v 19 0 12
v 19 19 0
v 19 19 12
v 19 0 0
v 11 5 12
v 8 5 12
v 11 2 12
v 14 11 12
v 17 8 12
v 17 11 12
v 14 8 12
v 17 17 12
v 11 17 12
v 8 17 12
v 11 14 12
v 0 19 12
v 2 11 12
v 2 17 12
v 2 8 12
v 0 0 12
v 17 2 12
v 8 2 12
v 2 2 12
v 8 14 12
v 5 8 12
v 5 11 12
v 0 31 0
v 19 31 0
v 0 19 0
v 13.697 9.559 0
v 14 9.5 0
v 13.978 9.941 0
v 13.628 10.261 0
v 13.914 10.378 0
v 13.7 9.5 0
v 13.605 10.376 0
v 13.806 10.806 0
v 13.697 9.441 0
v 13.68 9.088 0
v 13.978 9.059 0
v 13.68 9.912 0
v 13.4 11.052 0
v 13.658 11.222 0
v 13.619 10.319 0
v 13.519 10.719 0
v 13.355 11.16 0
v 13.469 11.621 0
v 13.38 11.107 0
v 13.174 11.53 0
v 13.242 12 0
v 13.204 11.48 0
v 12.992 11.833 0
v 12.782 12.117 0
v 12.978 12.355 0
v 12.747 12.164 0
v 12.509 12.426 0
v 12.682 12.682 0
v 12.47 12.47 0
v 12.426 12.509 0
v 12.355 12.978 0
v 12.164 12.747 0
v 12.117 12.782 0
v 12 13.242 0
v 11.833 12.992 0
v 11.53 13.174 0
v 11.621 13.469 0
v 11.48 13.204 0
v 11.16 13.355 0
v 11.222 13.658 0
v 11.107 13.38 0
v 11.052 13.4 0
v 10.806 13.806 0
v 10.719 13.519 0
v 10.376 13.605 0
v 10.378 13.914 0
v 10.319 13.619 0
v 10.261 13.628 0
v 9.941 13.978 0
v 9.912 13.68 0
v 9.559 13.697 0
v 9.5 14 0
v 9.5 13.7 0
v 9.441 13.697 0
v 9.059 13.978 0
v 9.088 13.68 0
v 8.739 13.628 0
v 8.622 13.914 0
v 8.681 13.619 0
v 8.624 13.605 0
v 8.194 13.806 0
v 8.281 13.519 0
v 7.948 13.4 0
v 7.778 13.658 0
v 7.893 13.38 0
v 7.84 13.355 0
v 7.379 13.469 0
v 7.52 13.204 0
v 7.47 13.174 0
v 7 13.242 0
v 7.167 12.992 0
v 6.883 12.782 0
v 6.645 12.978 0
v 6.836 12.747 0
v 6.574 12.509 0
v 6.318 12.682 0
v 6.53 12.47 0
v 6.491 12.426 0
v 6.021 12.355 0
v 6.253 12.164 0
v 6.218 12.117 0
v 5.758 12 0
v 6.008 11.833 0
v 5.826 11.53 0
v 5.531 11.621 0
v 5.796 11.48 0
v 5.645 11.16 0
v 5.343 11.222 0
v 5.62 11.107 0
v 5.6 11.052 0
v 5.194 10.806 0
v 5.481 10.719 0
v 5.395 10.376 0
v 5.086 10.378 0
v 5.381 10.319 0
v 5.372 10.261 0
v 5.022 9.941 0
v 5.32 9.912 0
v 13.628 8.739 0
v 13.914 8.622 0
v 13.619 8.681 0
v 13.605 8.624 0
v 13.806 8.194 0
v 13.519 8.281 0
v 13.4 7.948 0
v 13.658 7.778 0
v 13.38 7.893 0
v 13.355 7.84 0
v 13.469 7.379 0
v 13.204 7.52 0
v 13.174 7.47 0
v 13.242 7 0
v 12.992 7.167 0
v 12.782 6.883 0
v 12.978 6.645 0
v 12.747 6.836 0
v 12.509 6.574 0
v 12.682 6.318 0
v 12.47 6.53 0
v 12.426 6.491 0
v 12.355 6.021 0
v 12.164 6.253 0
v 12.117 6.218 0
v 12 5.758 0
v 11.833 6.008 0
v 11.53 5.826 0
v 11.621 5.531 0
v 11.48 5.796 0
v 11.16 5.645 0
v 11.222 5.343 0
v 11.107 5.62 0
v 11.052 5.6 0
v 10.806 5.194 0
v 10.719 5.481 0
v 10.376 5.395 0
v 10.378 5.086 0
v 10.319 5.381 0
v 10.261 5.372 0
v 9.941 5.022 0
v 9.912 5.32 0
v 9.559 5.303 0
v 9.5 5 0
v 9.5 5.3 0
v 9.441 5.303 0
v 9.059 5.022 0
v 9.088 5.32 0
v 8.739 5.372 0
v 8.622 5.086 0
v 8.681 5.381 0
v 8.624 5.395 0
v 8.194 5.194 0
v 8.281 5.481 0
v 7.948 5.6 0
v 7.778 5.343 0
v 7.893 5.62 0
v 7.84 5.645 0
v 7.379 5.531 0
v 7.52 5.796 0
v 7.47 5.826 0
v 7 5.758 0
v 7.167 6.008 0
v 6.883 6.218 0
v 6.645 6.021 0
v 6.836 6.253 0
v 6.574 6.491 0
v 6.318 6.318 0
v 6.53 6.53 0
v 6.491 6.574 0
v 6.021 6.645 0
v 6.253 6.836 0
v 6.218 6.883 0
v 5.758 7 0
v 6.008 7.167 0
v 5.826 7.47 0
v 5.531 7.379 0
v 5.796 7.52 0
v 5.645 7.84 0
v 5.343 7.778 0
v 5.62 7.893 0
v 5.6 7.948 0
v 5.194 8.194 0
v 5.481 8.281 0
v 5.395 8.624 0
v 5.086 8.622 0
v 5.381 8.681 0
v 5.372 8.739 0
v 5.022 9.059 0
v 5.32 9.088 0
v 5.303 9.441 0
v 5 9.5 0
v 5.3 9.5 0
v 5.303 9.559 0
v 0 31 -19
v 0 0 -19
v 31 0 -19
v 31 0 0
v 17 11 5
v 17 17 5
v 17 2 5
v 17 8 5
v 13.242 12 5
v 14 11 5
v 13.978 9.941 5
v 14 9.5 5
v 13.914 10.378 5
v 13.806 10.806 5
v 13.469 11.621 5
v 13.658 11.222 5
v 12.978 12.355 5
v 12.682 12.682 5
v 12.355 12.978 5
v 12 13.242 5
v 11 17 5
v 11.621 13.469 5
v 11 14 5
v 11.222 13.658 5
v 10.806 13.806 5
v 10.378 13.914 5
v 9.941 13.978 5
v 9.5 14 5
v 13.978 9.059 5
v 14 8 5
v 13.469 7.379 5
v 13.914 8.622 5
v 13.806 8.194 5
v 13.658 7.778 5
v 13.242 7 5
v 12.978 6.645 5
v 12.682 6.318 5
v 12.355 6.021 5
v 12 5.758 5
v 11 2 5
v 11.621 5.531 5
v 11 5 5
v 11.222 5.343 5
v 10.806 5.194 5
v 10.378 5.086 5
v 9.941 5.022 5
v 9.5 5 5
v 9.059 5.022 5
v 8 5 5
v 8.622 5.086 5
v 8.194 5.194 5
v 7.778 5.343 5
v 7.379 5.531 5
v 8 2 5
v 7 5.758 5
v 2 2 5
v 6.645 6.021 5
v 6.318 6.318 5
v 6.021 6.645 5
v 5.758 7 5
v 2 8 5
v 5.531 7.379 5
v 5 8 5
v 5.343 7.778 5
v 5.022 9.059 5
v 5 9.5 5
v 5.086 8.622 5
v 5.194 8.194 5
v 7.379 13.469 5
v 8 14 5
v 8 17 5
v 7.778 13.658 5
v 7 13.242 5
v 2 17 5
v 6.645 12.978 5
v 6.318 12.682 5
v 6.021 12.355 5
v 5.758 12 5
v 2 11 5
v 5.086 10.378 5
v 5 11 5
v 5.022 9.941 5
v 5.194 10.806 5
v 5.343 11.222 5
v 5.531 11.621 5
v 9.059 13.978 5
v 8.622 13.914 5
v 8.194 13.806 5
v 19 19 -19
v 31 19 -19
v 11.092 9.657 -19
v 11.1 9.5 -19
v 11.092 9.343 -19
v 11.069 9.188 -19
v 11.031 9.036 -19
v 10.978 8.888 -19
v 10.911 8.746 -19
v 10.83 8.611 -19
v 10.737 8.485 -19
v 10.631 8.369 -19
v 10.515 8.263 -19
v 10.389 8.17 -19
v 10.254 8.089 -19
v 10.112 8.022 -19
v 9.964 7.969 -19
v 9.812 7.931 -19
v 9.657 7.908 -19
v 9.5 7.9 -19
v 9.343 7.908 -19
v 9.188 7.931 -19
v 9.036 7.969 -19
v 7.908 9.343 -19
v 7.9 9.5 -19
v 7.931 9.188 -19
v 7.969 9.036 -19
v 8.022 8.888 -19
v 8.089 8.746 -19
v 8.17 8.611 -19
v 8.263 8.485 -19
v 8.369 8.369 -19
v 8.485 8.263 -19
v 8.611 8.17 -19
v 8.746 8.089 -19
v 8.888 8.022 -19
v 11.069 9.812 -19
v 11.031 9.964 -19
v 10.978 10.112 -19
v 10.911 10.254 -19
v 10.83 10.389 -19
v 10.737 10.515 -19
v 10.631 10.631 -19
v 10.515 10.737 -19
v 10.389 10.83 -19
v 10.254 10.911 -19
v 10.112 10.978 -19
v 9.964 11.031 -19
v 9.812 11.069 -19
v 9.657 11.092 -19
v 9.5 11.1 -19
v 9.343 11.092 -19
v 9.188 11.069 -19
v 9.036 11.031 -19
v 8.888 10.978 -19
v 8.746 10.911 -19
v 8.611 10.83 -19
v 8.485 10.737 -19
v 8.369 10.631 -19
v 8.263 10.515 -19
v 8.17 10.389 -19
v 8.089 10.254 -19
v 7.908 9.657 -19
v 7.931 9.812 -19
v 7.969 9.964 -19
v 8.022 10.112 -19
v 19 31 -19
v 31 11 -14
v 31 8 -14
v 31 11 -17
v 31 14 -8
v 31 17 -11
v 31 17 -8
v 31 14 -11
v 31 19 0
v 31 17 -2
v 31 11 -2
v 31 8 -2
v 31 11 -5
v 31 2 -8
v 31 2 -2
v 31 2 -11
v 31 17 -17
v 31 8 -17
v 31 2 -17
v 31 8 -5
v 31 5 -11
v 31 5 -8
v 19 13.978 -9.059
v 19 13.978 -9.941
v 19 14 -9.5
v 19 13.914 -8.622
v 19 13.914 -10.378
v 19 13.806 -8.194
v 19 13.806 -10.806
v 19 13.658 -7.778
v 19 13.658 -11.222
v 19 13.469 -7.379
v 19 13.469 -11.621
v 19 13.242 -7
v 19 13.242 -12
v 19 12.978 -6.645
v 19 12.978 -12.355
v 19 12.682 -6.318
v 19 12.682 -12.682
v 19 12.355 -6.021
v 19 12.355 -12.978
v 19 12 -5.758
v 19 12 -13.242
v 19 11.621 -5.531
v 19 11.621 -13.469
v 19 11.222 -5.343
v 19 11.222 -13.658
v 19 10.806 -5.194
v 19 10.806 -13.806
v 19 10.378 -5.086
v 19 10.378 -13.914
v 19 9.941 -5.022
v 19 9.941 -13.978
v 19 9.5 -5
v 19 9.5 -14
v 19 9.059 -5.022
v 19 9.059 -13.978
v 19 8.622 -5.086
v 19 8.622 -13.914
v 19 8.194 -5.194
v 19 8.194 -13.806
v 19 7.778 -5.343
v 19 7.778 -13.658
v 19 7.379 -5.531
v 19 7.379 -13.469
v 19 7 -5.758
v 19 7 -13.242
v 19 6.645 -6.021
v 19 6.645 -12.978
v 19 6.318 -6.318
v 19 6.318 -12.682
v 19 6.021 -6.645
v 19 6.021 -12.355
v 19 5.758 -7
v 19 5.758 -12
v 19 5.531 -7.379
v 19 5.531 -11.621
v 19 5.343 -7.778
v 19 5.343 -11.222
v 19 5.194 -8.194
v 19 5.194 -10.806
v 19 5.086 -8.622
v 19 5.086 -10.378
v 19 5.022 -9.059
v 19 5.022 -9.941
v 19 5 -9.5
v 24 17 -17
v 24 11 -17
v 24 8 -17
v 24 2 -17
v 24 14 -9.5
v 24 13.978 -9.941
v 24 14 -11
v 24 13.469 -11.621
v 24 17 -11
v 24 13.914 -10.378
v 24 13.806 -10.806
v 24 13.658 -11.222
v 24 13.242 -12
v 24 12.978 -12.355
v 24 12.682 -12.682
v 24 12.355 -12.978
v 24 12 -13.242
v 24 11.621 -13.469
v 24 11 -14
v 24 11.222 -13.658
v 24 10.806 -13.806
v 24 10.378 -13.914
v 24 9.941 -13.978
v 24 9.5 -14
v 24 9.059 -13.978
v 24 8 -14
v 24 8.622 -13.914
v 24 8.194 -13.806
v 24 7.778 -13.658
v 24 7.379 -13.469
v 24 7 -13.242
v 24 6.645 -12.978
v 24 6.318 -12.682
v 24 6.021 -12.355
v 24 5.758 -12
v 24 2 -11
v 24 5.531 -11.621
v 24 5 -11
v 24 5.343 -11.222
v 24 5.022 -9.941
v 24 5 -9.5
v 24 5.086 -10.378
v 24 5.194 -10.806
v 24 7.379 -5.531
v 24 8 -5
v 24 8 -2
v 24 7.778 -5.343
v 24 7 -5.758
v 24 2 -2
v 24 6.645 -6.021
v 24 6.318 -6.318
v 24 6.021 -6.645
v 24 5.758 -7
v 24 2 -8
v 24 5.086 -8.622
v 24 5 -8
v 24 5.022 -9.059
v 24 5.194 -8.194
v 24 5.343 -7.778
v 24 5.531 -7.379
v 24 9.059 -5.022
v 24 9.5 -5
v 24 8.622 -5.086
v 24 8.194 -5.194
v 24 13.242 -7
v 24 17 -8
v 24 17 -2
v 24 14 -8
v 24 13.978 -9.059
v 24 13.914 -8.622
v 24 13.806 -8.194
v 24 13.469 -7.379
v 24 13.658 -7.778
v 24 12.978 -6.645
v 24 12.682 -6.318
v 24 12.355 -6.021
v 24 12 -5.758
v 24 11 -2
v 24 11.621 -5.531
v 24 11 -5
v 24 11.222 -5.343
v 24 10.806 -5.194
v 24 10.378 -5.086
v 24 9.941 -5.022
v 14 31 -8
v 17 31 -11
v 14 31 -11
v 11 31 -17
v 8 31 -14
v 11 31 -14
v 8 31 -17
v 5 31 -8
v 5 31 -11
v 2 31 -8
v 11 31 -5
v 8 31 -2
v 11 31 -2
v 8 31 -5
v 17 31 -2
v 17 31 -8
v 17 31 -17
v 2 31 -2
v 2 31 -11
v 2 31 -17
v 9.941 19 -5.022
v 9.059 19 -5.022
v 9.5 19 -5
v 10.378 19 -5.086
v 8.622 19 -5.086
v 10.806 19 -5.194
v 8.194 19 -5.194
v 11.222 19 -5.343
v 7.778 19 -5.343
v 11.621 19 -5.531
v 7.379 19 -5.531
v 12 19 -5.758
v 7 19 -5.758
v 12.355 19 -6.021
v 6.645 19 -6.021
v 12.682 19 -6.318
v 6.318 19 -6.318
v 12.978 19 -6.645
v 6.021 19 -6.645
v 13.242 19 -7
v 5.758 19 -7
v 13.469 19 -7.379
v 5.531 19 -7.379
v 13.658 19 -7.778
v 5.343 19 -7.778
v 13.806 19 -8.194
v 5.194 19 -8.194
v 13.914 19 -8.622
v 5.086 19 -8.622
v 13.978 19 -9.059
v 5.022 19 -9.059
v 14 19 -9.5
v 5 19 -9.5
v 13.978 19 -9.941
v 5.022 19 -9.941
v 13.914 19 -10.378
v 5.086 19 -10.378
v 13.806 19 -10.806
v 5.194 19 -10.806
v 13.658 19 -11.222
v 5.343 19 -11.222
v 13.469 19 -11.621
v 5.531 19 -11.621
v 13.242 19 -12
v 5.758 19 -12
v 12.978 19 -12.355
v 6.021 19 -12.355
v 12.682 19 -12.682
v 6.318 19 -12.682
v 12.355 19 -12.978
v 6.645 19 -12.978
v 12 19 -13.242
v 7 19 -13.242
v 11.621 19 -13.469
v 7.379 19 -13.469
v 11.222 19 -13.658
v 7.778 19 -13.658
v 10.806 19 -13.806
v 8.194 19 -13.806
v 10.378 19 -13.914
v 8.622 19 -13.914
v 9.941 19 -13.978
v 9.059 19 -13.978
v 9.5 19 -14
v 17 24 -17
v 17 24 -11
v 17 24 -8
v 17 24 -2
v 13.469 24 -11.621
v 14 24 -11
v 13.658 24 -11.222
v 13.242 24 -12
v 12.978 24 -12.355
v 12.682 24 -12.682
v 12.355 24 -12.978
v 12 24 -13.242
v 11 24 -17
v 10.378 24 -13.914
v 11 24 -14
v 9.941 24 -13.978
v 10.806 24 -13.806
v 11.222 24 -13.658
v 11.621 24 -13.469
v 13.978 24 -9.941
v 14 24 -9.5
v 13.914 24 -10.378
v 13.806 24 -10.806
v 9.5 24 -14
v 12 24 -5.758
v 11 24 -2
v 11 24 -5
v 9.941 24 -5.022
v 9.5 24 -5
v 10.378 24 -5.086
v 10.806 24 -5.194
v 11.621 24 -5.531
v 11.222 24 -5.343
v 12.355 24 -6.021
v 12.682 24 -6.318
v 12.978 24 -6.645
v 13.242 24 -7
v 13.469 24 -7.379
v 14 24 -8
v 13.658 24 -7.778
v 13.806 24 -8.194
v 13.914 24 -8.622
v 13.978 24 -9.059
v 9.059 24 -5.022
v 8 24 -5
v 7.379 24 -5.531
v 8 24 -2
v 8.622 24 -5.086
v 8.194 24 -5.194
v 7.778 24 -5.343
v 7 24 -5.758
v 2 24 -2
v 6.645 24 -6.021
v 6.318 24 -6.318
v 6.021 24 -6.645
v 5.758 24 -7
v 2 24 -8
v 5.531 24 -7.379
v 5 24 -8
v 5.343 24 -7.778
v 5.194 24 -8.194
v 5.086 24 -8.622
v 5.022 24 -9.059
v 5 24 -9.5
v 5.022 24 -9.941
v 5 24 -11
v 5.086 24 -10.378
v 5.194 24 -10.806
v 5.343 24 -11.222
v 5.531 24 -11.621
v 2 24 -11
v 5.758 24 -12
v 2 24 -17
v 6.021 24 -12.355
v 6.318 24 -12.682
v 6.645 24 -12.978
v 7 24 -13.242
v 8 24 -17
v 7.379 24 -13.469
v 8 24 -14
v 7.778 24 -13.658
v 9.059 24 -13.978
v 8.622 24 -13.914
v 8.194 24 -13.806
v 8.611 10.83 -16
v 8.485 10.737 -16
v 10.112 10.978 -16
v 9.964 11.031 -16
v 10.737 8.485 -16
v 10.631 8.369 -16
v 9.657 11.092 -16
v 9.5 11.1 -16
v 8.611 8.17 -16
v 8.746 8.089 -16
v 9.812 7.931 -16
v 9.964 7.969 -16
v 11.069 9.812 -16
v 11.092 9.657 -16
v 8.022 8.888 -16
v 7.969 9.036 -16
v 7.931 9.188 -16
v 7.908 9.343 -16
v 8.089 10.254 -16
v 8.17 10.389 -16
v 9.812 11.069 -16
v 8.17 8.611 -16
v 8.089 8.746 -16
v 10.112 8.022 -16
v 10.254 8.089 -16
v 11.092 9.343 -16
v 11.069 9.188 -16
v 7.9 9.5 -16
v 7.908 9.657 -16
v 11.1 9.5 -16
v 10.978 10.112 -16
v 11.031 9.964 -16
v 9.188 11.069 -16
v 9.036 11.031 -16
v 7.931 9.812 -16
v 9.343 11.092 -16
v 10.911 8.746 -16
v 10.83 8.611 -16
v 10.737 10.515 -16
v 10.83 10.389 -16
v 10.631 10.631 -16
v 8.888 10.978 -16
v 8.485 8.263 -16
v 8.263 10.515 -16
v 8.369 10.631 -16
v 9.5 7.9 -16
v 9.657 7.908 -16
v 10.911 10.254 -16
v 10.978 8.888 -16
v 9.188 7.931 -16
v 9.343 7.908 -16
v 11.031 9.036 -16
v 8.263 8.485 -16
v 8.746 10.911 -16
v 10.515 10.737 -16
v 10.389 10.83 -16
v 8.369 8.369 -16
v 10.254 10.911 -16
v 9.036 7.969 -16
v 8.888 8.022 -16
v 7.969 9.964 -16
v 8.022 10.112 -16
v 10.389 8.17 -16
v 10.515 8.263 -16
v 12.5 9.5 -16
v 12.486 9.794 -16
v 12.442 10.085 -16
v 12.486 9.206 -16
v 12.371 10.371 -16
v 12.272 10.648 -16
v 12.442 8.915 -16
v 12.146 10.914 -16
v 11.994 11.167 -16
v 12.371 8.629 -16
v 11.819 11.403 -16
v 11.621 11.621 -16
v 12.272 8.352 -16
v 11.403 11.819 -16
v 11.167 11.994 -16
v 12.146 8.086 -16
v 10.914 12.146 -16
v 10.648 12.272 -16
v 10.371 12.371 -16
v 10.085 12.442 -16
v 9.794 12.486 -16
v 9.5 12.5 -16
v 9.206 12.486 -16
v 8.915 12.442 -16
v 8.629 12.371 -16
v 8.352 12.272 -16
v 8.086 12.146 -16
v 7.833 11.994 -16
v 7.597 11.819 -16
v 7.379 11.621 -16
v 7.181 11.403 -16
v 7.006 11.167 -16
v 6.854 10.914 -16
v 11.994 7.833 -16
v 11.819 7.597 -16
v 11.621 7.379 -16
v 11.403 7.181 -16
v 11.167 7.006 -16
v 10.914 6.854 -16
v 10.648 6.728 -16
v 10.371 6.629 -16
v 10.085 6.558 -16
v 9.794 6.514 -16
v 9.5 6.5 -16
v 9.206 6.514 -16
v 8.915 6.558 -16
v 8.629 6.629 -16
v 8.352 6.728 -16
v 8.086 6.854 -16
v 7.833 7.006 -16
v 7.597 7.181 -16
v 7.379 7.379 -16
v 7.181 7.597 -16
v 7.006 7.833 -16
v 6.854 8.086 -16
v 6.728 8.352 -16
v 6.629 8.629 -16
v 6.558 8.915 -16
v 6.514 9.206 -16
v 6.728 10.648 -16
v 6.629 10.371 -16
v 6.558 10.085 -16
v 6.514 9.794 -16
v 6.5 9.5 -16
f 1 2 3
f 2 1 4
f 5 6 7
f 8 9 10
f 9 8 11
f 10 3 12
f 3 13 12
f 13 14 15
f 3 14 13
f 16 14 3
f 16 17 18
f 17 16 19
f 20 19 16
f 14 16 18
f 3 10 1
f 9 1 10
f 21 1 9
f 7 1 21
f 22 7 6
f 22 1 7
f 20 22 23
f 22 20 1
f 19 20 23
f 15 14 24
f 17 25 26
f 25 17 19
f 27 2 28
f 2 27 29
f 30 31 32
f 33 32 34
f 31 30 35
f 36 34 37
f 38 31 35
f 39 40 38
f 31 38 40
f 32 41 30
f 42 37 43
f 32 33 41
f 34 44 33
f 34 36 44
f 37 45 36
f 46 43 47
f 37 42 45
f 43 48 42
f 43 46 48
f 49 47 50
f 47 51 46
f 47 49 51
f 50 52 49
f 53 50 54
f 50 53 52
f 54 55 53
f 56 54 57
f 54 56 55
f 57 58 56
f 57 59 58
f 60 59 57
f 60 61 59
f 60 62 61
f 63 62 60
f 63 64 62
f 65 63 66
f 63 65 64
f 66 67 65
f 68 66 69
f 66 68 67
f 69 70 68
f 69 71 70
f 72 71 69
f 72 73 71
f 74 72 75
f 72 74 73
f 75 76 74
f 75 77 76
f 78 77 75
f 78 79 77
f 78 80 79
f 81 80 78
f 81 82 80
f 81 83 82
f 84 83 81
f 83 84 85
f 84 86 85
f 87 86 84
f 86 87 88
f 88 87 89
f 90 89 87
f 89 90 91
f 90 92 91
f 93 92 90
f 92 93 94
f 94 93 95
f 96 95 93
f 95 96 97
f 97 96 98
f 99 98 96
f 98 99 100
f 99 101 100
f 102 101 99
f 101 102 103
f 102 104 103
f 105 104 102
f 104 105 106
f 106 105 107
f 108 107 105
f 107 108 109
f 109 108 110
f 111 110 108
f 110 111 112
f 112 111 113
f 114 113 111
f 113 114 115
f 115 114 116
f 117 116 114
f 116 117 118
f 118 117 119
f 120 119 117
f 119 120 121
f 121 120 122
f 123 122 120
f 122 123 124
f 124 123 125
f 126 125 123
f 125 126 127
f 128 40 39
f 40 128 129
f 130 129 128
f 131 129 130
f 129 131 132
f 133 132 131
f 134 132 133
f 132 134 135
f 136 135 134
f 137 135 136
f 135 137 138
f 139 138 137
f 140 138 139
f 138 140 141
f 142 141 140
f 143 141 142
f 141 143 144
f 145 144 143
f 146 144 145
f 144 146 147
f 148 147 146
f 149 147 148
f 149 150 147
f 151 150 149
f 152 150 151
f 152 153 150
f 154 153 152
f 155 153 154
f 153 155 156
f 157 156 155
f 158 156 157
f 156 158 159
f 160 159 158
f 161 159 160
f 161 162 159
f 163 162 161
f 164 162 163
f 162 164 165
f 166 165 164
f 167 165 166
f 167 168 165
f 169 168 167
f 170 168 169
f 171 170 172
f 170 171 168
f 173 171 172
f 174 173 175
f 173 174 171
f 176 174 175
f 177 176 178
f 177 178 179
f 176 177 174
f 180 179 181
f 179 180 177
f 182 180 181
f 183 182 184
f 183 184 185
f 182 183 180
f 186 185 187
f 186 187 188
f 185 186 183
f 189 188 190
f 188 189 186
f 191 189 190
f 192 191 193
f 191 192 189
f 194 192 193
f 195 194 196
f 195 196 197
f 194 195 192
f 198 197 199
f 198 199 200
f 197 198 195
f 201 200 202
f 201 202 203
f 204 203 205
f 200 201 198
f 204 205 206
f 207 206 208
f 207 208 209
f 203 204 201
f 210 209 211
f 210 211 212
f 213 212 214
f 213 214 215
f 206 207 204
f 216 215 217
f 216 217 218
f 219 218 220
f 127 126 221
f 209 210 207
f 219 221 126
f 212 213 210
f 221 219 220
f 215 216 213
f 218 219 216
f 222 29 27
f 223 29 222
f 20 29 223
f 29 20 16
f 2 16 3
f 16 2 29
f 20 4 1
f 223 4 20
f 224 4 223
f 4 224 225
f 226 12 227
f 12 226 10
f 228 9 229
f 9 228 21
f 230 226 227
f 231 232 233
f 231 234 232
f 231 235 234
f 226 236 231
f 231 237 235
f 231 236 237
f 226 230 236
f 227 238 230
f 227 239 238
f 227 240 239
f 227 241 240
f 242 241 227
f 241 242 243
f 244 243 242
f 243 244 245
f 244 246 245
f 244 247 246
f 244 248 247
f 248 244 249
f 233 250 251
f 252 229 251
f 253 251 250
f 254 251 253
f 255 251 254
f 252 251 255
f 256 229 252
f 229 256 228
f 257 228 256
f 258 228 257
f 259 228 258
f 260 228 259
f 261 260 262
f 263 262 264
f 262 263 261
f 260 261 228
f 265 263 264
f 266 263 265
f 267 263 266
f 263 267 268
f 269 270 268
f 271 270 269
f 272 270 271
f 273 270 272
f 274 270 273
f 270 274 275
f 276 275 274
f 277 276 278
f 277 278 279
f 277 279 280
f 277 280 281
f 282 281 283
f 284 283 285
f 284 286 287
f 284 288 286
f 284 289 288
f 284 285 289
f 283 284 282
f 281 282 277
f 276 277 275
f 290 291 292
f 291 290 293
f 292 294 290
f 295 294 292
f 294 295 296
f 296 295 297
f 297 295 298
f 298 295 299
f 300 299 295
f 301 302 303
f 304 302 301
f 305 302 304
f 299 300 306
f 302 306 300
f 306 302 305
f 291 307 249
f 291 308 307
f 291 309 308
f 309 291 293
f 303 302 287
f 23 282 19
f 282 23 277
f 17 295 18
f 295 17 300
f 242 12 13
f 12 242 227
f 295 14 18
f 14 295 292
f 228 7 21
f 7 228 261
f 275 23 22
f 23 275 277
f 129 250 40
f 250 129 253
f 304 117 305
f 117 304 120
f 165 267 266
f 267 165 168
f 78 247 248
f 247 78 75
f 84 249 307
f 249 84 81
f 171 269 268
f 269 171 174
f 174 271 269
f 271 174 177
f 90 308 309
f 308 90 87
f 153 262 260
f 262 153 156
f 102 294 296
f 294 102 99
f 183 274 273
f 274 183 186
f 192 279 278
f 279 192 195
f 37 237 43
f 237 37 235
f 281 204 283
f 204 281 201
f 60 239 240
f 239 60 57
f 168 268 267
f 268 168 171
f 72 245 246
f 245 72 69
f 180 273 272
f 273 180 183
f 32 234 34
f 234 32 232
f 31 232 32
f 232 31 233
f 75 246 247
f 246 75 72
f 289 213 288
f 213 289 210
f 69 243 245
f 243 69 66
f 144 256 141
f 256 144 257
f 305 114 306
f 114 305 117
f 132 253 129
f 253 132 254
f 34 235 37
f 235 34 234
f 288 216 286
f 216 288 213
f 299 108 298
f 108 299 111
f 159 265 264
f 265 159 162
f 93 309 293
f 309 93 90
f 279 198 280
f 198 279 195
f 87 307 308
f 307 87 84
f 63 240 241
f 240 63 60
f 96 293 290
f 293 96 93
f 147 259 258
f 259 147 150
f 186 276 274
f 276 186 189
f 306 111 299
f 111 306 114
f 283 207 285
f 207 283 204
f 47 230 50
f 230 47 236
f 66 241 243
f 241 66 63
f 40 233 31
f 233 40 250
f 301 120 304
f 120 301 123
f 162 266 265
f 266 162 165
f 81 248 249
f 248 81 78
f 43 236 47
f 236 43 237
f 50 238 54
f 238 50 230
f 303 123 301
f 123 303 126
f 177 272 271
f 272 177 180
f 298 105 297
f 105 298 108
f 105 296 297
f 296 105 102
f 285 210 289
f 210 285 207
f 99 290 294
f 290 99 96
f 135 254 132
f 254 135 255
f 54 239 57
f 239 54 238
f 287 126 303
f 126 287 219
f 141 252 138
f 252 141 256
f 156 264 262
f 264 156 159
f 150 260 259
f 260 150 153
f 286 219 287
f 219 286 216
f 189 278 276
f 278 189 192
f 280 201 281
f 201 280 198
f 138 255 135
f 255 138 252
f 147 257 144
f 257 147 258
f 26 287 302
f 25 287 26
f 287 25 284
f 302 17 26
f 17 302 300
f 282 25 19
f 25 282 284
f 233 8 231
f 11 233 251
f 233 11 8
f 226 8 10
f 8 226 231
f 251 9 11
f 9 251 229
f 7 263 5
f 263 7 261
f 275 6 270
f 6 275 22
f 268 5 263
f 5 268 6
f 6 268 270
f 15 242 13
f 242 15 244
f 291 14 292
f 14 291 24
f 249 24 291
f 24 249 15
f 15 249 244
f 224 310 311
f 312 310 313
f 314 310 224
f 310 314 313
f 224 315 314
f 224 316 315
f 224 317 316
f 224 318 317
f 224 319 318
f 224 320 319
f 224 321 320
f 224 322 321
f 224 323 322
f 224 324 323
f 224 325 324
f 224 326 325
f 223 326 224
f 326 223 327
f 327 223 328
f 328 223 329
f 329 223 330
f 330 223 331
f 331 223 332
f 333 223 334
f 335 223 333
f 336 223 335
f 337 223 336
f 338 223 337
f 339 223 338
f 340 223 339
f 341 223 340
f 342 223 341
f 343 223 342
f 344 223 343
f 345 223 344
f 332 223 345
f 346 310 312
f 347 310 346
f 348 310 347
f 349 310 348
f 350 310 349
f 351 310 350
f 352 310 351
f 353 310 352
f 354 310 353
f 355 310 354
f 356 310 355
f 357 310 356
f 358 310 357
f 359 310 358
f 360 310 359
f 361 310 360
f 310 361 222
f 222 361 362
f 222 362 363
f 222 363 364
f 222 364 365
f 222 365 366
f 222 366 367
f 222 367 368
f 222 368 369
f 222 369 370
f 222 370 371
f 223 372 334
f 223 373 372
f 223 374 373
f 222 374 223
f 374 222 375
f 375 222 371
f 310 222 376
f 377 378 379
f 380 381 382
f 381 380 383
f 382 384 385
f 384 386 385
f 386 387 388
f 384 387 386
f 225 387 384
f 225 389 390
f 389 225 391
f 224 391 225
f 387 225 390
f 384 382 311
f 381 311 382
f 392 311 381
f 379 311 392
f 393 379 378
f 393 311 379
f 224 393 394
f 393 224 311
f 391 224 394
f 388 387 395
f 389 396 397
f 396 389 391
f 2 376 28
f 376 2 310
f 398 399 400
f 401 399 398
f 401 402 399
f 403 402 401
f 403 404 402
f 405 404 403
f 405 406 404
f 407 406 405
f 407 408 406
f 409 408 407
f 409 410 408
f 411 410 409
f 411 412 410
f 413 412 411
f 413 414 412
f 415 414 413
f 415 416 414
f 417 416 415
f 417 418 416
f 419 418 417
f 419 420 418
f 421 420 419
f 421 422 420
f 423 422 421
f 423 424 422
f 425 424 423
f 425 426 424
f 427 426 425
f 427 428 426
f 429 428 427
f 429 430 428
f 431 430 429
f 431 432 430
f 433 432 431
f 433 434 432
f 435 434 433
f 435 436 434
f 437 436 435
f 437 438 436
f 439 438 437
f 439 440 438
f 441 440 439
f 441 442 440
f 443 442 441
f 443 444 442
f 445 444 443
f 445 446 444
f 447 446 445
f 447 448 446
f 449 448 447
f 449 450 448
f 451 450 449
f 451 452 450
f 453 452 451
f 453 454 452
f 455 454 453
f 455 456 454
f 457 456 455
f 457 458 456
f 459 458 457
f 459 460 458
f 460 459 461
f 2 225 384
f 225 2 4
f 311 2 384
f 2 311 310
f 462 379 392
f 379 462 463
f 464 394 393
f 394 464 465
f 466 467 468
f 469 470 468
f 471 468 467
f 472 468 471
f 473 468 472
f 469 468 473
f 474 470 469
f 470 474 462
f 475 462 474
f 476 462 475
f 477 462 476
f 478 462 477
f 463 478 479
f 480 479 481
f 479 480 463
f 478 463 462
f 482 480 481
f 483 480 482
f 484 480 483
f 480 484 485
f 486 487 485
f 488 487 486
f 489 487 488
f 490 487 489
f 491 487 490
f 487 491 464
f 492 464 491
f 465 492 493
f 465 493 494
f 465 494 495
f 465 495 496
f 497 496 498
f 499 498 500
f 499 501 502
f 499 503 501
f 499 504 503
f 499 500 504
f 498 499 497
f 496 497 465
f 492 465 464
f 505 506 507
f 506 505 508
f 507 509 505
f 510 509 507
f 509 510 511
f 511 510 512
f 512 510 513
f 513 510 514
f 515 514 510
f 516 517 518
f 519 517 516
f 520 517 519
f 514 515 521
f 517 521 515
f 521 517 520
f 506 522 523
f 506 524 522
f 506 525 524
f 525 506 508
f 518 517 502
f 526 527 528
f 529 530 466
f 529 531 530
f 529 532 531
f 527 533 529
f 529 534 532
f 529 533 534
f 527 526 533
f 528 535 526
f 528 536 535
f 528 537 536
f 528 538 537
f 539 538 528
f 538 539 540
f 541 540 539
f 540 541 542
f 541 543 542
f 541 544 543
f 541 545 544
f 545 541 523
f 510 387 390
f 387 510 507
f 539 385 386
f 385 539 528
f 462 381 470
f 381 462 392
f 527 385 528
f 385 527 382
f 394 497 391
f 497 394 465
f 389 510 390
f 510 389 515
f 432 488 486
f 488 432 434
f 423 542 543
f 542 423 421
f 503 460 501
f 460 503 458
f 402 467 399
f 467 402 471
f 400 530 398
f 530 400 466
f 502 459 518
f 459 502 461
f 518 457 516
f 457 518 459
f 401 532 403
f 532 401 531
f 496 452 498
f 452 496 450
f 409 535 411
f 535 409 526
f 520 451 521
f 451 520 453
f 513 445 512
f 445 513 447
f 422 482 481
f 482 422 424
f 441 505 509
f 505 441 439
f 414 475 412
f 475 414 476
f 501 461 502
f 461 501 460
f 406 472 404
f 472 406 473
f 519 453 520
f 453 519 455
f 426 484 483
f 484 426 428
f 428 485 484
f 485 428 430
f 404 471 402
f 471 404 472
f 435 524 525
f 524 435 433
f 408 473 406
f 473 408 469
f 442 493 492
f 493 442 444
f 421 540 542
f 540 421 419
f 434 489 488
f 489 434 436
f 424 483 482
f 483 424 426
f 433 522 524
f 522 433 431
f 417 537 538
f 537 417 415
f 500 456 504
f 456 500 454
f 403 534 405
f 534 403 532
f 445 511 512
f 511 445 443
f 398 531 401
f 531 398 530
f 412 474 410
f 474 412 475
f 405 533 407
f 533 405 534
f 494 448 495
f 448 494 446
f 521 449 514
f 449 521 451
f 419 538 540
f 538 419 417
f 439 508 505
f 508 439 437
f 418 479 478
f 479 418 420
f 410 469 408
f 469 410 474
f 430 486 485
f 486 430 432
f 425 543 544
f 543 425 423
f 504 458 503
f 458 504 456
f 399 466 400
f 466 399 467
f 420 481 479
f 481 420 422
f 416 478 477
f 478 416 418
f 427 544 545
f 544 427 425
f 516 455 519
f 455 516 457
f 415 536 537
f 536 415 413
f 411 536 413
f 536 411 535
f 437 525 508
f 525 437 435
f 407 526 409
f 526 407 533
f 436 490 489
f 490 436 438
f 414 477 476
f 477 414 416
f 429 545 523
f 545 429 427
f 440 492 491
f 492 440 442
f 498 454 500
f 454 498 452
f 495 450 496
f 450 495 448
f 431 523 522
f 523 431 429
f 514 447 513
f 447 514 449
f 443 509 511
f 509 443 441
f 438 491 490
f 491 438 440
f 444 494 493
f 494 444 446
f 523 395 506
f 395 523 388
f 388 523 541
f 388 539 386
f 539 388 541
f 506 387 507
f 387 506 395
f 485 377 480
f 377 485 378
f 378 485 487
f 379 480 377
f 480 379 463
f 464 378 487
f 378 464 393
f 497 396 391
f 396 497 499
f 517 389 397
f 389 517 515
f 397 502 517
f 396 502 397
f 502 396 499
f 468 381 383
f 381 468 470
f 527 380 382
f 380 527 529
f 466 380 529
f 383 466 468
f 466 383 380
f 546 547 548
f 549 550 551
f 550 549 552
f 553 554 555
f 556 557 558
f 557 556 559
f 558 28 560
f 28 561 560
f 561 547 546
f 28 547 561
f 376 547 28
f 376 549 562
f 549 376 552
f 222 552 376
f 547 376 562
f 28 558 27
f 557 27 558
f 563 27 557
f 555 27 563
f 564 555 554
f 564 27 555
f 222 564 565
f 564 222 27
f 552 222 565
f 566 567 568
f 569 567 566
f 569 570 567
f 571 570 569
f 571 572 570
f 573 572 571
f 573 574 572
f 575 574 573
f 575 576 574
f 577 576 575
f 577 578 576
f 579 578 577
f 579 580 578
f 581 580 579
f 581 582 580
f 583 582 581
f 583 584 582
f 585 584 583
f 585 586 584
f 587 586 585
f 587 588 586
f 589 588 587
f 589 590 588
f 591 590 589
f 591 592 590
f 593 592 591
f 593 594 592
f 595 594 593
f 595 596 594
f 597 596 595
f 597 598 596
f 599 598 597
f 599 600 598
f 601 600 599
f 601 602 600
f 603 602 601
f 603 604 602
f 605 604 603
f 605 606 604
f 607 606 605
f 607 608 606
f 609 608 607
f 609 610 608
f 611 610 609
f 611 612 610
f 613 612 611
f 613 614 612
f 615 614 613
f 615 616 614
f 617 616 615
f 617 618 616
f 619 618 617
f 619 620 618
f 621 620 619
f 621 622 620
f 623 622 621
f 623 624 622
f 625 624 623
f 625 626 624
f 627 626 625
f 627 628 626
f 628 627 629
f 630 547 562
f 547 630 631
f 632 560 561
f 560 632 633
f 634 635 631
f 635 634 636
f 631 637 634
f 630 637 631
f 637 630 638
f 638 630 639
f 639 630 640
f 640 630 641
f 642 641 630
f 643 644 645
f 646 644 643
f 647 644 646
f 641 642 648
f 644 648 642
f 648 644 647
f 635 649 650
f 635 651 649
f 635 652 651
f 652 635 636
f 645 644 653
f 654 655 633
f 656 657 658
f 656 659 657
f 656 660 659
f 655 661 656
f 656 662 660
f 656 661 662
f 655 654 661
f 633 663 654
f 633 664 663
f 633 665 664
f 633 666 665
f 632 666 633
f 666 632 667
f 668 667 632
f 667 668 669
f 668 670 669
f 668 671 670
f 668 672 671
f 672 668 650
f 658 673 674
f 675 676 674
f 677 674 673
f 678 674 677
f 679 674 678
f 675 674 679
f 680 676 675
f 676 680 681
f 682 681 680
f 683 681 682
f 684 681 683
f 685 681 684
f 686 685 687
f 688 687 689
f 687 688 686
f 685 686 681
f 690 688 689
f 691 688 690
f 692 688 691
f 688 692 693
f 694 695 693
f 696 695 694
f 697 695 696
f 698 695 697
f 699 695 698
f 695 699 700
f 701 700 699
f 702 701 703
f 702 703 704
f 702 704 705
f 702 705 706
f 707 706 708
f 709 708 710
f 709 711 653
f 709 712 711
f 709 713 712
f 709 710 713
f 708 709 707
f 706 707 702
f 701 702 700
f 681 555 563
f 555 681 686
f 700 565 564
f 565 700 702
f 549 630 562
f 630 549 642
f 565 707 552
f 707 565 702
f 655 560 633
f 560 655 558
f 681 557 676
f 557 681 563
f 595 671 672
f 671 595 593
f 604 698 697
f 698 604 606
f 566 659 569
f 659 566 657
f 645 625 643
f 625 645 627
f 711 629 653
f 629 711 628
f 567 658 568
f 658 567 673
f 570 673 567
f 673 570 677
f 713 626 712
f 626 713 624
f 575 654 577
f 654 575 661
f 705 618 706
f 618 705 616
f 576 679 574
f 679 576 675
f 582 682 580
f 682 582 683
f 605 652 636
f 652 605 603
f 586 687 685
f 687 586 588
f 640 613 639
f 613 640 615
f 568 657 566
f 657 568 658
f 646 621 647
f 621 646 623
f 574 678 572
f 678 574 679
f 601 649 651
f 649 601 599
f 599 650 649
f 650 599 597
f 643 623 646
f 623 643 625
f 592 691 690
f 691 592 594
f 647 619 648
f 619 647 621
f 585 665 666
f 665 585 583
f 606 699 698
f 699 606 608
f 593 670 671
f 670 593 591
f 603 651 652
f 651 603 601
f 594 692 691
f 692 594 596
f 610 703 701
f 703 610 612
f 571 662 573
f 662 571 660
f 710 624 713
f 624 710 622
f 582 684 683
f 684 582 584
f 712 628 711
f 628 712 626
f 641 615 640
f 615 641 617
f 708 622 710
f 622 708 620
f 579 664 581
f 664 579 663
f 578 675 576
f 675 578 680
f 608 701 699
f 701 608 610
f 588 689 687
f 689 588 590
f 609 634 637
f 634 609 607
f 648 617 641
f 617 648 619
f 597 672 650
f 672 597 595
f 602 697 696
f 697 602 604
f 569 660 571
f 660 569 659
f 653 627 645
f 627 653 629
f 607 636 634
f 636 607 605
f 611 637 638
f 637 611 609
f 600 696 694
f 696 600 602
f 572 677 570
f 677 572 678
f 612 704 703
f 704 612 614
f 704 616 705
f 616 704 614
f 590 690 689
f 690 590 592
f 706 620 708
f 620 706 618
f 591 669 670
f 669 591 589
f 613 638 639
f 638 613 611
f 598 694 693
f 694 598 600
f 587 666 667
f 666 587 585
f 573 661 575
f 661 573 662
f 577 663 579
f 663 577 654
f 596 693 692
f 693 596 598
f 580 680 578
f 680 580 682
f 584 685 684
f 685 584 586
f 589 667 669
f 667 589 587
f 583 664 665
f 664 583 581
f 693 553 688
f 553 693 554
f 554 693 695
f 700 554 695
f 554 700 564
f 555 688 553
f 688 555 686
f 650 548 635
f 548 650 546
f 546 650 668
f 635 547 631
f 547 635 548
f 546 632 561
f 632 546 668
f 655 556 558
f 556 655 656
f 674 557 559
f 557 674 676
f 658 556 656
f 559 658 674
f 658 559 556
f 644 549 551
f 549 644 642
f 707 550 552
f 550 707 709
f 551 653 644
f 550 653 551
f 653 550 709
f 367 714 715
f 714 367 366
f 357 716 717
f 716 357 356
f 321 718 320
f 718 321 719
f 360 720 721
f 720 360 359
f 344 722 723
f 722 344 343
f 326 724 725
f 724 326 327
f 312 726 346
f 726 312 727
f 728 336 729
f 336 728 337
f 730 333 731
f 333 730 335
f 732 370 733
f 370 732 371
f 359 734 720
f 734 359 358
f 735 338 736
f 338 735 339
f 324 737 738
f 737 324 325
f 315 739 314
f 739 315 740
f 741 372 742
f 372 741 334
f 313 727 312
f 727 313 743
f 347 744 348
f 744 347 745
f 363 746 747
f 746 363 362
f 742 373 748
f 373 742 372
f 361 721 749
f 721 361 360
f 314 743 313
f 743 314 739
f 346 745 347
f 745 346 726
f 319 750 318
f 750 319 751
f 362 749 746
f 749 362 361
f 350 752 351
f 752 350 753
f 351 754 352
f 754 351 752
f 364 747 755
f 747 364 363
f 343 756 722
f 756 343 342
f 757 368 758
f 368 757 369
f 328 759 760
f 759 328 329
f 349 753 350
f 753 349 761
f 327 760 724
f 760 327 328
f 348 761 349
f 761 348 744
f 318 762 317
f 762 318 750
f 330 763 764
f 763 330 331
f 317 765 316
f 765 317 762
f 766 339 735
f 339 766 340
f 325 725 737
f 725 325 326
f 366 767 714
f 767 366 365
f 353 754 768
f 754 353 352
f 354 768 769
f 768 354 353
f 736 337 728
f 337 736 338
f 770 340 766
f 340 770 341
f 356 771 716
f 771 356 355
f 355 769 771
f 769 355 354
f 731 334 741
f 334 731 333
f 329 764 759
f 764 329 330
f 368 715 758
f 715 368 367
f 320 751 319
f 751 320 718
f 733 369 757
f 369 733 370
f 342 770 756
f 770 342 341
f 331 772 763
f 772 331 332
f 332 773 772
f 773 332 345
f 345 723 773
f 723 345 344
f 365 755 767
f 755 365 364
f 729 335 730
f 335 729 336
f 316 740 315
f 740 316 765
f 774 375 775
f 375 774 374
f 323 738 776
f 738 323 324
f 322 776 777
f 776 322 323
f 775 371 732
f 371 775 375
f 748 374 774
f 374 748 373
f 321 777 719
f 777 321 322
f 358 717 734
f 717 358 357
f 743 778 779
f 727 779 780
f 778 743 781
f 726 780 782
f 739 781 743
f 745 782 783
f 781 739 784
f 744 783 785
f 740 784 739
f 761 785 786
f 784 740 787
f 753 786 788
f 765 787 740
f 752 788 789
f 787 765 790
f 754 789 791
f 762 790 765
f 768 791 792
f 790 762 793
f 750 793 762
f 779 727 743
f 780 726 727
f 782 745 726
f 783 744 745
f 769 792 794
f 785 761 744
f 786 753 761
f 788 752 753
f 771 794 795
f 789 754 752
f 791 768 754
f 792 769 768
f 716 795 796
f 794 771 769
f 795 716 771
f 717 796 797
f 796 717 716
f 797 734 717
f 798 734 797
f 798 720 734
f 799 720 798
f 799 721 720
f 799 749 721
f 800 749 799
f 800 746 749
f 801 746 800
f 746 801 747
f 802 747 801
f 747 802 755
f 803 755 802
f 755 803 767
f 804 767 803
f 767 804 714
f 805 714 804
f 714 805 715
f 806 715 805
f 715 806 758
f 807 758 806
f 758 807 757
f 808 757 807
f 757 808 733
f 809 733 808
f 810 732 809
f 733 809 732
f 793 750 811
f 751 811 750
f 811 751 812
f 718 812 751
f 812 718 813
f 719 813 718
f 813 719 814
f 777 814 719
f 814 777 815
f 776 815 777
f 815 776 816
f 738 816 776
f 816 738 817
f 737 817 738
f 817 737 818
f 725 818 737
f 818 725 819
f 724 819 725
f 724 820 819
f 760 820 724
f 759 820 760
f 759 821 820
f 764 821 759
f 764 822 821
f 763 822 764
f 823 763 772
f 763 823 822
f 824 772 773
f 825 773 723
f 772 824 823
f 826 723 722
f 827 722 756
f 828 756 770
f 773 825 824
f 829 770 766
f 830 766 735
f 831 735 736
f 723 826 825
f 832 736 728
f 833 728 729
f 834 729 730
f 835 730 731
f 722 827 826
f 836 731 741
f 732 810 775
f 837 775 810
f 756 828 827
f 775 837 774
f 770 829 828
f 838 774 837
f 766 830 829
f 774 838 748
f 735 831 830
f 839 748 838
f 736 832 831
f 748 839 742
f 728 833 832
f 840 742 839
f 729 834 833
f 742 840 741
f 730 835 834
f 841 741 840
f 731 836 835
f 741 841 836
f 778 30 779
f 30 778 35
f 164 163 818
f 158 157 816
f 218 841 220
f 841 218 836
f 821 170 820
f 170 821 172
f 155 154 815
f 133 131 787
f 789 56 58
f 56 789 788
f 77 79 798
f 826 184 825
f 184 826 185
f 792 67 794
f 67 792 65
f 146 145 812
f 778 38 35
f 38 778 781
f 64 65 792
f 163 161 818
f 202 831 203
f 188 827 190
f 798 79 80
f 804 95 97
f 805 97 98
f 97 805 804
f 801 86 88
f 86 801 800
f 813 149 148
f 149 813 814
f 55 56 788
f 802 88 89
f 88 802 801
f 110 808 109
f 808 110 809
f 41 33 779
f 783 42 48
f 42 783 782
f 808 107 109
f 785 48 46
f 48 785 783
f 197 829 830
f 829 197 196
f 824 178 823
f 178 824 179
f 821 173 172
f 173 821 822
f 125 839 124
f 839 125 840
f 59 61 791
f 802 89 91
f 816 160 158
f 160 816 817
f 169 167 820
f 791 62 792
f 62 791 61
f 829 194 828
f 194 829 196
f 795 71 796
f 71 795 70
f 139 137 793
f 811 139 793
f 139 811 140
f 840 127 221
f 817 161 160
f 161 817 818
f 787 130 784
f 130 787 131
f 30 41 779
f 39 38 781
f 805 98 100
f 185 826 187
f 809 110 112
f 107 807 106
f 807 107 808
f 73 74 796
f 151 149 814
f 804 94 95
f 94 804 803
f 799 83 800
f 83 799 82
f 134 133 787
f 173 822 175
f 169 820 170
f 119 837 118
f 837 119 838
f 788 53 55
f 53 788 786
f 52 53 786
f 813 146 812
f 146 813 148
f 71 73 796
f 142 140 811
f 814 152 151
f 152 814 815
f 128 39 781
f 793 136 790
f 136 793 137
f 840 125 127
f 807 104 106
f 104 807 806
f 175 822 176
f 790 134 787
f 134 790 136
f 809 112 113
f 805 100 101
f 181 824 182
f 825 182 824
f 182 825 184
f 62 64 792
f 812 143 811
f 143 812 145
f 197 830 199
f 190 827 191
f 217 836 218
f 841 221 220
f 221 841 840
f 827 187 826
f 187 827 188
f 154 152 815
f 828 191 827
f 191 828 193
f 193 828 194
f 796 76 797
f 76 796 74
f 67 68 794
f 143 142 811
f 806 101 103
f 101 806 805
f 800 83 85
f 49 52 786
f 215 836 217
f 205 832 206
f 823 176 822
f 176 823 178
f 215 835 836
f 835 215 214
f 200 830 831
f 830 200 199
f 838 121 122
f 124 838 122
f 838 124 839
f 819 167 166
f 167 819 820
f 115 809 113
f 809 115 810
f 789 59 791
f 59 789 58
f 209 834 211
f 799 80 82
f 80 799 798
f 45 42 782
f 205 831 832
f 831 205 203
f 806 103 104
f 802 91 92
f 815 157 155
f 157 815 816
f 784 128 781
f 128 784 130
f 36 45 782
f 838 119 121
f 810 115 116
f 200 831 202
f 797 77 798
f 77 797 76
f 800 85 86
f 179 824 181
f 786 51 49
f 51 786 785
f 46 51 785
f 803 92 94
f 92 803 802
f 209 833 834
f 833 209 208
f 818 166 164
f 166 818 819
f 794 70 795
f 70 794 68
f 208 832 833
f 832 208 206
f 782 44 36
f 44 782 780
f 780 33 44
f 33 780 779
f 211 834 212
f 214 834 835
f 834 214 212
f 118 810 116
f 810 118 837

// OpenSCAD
$fn = 64;


size = 30;

h = 20;

r = 5;

holeD = 6.8;
holeR = holeD / 2.0 ;


/*
module smoothSquare(size,r,h){
    
    difference(){
        translate([0,0,0]) cube([size,size,h]);
    
        translate([0,0,0]) cube([r,r,h]);
        translate([size - r,0,0]) cube([r,r,h]);
        translate([0,size - r,0]) cube([r,r,h]);
        translate([size - r,size - r,0]) cube([r,r,h]);
        
    }
    
    translate([r,r,0]) cylinder(h,r,r);
    translate([size - r,r,0]) cylinder(h,r,r);
    translate([r, size - r,0]) cylinder(h,r,r);
    translate([size - r ,size - r ,0]) cylinder(h,r,r);
   
      
}




module cutOut(x,y){
    
 difference(){
    translate([x  , y + 2,0]) cube([5,6,h]);

          
   translate([x + 2 ,y + 8 ,0]) rotate([0,0,-35]){
         cube([6,4,h]);  
        }
        
    translate([x + 4,y - 2 ,0]) rotate([0,0,35]){
            cube([6,4,h]);  
          }      
        
        
    }

    
}

module crossSection(){
    
    difference(){

    smoothSquare(size,r,h);
    

    
    cutOut(0,10);
    
    rotate([0,0,-90]){
        cutOut(-30,10);
    }
    
    rotate([0,0,180]){
        cutOut(-30,-20);
    }
   
    
    rotate([0,0,90]){
        cutOut(0,-20);
    }
}
    
}
*/
/* START OF DESIGN */
/*
difference(){
    
    translate([-4,-4,-4]) cube( [size + 8  , size + 8 , h + 4 ] );

    crossSection();
    
    translate( [ size / 2 ,size / 2 , - 4 ] ) #cylinder( 4 , 3 , 3 ); 
    
    translate( [ size / 2 ,size / 2 , - 1 ] ) cylinder( 4 , 5.75 , 5.75 ); 
    
}*/

width = 15.0;
wall = ( 19 -  width ) * 0.5;


module brick( x  , y , z ){
    
    
translate( [ x , y , z ] ){
    
    difference(){

        translate([0,0,0]) cube ([19,19,12]);
    
        translate([wall,wall,5]) cube ([width,width,9]);
    
        //translate( [ 9.5 , 9.5 ,0  ] ) #cylinder( 3 , 1.6 , 1.7 ); 
        //translate( [ 9.5 , 9.5 ,3  ] ) #cylinder( 2 , 3.0 , 3.0 ); 
        
         translate( [ 9.5 , 9.5 ,0  ] ) cylinder( 5 , 4.5 , 4.5 ); 
    
    
    }


    translate([0,8,0]) cube ([5,3,12]);
    translate([14,8,0]) cube ([5,3,12]);
    translate([8,0,0]) cube ([3,5,12]);
    translate([8,14,0]) cube ([3,5,12]);

    
    
    }
    
}



brick(0,0,0);

rotate( [ 0 , 90 , 0 ] ){
    brick(0,0,19);
}


rotate( [ 270 , 0 , 0 ] ){
    brick(0,0,19);
}



difference(){
 
    translate([0,0,-19]) cube ([19,19,19]);

    translate( [ 9.5 , 9.5 , -19  ] ) cylinder( 3 , 1.6 , 1.6 ); 
    translate( [ 9.5 , 9.5 ,-16 ] ) cylinder( 20 , 3.0 , 4.5 ); 
   /*
    rotate( [ 0 , 90 , 0 ] ){
        translate( [ 9.5 , 9.5 , 0 ] ) cylinder( 3 , 1.6 , 1.6 ); 
        translate( [ 9.5 , 9.5 ,3 ] ) cylinder( 20 , 3.0 , 4.5 ); 
    }
    
    
     rotate( [ 270 , 0 , 0 ] ){
        translate( [ 9.5 , 9.5 , 0 ] ) cylinder( 3 , 1.6 , 1.6 ); 
        translate( [ 9.5 , 9.5 ,3 ] ) cylinder( 20 , 3.0 , 4.5 ); 
    }
    */
    
}

 
